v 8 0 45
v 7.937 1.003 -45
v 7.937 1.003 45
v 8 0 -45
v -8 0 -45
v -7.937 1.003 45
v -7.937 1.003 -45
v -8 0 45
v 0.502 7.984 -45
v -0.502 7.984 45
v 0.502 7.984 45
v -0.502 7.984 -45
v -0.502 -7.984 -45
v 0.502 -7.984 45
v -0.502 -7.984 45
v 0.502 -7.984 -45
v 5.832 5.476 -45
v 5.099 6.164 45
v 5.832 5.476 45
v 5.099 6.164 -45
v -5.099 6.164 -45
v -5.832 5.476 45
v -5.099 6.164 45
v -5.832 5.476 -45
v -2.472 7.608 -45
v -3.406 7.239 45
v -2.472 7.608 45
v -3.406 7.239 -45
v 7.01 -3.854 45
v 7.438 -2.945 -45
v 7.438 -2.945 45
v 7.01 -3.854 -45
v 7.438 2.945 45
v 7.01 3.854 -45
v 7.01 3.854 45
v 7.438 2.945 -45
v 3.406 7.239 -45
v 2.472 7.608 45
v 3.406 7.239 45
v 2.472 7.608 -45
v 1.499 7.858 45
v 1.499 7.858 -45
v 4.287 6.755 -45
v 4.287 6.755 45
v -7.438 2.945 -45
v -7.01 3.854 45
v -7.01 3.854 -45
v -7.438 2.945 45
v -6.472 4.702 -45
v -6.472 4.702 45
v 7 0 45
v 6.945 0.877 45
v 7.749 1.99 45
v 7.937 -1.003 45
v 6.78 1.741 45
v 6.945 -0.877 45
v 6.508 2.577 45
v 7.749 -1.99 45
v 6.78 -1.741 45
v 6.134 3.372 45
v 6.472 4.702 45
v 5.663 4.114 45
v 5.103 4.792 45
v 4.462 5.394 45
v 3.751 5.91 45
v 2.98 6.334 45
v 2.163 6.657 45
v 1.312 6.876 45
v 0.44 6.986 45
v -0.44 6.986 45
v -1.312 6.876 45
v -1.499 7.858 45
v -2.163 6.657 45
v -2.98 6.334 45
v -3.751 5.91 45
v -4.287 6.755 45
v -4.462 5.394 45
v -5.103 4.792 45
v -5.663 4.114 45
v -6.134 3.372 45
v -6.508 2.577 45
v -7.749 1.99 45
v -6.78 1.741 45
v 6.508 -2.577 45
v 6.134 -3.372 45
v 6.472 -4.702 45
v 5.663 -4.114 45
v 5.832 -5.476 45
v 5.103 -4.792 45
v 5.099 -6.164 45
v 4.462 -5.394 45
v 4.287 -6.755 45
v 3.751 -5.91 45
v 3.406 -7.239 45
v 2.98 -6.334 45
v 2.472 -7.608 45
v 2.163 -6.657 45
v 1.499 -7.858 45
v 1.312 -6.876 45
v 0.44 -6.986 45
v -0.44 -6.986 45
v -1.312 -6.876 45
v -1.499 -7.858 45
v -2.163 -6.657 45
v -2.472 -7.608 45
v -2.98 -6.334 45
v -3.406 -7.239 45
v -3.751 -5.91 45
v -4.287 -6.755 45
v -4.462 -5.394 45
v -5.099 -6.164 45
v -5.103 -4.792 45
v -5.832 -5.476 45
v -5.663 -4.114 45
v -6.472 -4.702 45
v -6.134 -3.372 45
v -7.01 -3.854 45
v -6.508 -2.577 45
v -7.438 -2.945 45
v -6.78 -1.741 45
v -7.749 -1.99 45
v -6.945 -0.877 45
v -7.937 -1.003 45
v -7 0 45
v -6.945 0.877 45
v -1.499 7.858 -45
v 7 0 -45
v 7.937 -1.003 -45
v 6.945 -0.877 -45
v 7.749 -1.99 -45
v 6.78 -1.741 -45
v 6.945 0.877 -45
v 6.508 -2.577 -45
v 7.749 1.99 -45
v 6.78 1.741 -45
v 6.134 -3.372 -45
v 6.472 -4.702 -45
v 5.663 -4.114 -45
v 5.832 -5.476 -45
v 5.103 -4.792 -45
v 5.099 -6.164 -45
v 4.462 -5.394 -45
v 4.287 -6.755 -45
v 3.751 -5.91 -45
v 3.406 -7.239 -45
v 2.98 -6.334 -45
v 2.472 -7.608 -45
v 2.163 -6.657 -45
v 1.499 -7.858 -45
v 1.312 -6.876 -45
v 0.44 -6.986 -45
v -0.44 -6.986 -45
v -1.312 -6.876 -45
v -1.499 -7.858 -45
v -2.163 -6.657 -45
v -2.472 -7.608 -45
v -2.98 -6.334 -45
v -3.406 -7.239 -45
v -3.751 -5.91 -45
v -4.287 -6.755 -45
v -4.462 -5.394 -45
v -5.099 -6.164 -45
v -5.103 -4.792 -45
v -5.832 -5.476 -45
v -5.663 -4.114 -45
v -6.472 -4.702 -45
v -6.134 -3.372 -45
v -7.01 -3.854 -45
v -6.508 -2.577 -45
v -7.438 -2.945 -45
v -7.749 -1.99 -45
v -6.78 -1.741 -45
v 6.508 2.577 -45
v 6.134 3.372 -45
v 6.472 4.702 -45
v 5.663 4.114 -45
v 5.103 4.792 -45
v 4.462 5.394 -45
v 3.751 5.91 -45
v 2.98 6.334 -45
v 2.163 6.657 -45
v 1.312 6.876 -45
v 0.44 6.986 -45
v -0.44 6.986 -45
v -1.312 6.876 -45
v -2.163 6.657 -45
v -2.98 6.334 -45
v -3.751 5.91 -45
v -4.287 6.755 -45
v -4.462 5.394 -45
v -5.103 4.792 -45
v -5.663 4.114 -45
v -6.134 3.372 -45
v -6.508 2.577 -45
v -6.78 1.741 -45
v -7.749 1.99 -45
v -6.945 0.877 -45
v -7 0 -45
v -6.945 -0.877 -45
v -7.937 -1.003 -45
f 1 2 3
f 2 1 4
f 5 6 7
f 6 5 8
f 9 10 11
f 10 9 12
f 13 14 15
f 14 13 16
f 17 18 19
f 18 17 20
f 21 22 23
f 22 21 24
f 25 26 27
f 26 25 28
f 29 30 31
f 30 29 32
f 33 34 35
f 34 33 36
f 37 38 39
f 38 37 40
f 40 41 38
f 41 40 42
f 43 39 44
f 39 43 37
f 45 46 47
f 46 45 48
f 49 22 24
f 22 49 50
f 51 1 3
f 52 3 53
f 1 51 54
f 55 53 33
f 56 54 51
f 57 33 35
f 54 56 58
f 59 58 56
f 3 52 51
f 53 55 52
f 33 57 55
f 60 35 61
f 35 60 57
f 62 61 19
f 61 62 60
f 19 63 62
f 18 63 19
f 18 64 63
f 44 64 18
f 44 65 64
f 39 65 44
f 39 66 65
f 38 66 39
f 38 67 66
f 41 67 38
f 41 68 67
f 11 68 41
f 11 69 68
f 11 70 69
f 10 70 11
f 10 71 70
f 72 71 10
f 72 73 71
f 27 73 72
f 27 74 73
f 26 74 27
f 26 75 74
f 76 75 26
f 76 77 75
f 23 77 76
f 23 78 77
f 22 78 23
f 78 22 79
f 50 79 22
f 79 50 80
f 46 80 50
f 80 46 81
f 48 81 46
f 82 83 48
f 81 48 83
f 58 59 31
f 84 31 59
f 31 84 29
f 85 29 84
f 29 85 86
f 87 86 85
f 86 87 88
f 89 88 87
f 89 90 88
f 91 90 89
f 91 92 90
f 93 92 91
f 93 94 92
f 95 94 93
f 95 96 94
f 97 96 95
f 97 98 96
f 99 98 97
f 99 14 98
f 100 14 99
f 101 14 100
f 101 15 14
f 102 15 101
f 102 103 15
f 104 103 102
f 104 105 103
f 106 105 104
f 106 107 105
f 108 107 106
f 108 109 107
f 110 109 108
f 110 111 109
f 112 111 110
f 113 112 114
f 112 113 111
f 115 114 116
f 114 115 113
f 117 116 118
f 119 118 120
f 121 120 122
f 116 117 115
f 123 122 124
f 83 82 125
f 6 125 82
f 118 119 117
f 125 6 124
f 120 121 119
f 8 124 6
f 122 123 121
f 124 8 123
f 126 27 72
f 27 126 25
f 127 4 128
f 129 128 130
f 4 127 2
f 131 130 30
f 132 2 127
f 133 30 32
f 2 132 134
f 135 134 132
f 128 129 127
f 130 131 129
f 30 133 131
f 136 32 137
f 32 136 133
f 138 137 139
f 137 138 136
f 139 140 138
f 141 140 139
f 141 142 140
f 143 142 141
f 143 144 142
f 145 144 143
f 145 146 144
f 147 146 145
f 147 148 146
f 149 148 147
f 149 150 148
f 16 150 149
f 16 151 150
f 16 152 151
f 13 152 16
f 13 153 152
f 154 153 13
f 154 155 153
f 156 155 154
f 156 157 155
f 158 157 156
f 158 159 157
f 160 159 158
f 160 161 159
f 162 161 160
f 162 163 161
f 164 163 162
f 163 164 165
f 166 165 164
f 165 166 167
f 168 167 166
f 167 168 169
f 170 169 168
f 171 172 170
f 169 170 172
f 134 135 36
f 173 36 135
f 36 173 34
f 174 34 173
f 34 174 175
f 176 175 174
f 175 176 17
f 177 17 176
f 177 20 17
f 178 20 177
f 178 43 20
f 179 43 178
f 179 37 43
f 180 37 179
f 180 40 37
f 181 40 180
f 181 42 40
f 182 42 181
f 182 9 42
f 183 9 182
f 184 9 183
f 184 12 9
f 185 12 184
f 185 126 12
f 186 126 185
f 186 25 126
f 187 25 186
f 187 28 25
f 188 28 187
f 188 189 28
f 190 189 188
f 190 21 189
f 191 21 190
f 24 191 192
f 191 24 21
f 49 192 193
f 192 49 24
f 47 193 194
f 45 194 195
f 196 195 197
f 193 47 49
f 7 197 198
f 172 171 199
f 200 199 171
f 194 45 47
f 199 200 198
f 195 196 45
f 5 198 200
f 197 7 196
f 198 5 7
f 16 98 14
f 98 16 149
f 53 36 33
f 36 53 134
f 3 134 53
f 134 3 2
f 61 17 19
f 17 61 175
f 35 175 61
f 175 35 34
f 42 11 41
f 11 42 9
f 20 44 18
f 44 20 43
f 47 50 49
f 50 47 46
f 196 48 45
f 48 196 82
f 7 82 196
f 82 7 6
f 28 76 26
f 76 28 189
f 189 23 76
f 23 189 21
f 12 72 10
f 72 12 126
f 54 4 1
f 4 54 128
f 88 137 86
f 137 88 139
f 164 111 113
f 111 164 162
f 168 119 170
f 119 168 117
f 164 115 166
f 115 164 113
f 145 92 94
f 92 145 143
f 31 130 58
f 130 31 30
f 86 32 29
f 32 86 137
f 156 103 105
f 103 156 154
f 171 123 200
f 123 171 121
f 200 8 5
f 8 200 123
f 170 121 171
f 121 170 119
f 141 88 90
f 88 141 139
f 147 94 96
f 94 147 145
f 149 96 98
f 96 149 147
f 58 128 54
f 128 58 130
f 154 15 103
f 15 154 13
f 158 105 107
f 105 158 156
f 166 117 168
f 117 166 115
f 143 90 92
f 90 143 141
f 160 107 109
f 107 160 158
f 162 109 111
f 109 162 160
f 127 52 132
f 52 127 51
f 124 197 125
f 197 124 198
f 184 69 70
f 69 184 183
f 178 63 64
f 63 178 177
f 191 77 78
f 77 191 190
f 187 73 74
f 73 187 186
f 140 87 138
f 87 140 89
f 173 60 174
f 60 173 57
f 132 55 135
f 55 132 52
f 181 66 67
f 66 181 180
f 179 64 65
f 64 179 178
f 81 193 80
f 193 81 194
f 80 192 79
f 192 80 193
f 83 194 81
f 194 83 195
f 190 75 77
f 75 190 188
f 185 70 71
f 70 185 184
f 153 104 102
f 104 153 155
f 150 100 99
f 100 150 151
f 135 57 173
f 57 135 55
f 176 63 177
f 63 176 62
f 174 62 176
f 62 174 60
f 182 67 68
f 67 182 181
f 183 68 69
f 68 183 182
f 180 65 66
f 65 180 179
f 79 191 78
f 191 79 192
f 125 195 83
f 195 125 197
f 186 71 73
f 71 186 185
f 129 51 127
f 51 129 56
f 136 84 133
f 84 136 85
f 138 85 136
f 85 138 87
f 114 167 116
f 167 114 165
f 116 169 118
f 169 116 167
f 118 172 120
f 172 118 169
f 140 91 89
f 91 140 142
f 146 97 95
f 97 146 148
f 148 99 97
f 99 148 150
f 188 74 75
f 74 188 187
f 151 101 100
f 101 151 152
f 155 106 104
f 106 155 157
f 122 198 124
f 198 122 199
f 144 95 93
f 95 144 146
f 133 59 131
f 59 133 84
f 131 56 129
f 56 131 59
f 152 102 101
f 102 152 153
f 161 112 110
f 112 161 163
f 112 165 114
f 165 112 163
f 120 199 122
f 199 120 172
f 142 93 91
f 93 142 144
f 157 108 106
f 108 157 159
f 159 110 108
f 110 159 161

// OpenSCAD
$fn = 50;


difference() {
	union() {
		translate(v = [0, 0, -45.0000000000]) {
			cylinder(h = 90, r = 8.0000000000);
		}
	}
	union() {
		translate(v = [0, 0, -100.0000000000]) {
			cylinder(h = 200, r = 7);
		}
	}
}
